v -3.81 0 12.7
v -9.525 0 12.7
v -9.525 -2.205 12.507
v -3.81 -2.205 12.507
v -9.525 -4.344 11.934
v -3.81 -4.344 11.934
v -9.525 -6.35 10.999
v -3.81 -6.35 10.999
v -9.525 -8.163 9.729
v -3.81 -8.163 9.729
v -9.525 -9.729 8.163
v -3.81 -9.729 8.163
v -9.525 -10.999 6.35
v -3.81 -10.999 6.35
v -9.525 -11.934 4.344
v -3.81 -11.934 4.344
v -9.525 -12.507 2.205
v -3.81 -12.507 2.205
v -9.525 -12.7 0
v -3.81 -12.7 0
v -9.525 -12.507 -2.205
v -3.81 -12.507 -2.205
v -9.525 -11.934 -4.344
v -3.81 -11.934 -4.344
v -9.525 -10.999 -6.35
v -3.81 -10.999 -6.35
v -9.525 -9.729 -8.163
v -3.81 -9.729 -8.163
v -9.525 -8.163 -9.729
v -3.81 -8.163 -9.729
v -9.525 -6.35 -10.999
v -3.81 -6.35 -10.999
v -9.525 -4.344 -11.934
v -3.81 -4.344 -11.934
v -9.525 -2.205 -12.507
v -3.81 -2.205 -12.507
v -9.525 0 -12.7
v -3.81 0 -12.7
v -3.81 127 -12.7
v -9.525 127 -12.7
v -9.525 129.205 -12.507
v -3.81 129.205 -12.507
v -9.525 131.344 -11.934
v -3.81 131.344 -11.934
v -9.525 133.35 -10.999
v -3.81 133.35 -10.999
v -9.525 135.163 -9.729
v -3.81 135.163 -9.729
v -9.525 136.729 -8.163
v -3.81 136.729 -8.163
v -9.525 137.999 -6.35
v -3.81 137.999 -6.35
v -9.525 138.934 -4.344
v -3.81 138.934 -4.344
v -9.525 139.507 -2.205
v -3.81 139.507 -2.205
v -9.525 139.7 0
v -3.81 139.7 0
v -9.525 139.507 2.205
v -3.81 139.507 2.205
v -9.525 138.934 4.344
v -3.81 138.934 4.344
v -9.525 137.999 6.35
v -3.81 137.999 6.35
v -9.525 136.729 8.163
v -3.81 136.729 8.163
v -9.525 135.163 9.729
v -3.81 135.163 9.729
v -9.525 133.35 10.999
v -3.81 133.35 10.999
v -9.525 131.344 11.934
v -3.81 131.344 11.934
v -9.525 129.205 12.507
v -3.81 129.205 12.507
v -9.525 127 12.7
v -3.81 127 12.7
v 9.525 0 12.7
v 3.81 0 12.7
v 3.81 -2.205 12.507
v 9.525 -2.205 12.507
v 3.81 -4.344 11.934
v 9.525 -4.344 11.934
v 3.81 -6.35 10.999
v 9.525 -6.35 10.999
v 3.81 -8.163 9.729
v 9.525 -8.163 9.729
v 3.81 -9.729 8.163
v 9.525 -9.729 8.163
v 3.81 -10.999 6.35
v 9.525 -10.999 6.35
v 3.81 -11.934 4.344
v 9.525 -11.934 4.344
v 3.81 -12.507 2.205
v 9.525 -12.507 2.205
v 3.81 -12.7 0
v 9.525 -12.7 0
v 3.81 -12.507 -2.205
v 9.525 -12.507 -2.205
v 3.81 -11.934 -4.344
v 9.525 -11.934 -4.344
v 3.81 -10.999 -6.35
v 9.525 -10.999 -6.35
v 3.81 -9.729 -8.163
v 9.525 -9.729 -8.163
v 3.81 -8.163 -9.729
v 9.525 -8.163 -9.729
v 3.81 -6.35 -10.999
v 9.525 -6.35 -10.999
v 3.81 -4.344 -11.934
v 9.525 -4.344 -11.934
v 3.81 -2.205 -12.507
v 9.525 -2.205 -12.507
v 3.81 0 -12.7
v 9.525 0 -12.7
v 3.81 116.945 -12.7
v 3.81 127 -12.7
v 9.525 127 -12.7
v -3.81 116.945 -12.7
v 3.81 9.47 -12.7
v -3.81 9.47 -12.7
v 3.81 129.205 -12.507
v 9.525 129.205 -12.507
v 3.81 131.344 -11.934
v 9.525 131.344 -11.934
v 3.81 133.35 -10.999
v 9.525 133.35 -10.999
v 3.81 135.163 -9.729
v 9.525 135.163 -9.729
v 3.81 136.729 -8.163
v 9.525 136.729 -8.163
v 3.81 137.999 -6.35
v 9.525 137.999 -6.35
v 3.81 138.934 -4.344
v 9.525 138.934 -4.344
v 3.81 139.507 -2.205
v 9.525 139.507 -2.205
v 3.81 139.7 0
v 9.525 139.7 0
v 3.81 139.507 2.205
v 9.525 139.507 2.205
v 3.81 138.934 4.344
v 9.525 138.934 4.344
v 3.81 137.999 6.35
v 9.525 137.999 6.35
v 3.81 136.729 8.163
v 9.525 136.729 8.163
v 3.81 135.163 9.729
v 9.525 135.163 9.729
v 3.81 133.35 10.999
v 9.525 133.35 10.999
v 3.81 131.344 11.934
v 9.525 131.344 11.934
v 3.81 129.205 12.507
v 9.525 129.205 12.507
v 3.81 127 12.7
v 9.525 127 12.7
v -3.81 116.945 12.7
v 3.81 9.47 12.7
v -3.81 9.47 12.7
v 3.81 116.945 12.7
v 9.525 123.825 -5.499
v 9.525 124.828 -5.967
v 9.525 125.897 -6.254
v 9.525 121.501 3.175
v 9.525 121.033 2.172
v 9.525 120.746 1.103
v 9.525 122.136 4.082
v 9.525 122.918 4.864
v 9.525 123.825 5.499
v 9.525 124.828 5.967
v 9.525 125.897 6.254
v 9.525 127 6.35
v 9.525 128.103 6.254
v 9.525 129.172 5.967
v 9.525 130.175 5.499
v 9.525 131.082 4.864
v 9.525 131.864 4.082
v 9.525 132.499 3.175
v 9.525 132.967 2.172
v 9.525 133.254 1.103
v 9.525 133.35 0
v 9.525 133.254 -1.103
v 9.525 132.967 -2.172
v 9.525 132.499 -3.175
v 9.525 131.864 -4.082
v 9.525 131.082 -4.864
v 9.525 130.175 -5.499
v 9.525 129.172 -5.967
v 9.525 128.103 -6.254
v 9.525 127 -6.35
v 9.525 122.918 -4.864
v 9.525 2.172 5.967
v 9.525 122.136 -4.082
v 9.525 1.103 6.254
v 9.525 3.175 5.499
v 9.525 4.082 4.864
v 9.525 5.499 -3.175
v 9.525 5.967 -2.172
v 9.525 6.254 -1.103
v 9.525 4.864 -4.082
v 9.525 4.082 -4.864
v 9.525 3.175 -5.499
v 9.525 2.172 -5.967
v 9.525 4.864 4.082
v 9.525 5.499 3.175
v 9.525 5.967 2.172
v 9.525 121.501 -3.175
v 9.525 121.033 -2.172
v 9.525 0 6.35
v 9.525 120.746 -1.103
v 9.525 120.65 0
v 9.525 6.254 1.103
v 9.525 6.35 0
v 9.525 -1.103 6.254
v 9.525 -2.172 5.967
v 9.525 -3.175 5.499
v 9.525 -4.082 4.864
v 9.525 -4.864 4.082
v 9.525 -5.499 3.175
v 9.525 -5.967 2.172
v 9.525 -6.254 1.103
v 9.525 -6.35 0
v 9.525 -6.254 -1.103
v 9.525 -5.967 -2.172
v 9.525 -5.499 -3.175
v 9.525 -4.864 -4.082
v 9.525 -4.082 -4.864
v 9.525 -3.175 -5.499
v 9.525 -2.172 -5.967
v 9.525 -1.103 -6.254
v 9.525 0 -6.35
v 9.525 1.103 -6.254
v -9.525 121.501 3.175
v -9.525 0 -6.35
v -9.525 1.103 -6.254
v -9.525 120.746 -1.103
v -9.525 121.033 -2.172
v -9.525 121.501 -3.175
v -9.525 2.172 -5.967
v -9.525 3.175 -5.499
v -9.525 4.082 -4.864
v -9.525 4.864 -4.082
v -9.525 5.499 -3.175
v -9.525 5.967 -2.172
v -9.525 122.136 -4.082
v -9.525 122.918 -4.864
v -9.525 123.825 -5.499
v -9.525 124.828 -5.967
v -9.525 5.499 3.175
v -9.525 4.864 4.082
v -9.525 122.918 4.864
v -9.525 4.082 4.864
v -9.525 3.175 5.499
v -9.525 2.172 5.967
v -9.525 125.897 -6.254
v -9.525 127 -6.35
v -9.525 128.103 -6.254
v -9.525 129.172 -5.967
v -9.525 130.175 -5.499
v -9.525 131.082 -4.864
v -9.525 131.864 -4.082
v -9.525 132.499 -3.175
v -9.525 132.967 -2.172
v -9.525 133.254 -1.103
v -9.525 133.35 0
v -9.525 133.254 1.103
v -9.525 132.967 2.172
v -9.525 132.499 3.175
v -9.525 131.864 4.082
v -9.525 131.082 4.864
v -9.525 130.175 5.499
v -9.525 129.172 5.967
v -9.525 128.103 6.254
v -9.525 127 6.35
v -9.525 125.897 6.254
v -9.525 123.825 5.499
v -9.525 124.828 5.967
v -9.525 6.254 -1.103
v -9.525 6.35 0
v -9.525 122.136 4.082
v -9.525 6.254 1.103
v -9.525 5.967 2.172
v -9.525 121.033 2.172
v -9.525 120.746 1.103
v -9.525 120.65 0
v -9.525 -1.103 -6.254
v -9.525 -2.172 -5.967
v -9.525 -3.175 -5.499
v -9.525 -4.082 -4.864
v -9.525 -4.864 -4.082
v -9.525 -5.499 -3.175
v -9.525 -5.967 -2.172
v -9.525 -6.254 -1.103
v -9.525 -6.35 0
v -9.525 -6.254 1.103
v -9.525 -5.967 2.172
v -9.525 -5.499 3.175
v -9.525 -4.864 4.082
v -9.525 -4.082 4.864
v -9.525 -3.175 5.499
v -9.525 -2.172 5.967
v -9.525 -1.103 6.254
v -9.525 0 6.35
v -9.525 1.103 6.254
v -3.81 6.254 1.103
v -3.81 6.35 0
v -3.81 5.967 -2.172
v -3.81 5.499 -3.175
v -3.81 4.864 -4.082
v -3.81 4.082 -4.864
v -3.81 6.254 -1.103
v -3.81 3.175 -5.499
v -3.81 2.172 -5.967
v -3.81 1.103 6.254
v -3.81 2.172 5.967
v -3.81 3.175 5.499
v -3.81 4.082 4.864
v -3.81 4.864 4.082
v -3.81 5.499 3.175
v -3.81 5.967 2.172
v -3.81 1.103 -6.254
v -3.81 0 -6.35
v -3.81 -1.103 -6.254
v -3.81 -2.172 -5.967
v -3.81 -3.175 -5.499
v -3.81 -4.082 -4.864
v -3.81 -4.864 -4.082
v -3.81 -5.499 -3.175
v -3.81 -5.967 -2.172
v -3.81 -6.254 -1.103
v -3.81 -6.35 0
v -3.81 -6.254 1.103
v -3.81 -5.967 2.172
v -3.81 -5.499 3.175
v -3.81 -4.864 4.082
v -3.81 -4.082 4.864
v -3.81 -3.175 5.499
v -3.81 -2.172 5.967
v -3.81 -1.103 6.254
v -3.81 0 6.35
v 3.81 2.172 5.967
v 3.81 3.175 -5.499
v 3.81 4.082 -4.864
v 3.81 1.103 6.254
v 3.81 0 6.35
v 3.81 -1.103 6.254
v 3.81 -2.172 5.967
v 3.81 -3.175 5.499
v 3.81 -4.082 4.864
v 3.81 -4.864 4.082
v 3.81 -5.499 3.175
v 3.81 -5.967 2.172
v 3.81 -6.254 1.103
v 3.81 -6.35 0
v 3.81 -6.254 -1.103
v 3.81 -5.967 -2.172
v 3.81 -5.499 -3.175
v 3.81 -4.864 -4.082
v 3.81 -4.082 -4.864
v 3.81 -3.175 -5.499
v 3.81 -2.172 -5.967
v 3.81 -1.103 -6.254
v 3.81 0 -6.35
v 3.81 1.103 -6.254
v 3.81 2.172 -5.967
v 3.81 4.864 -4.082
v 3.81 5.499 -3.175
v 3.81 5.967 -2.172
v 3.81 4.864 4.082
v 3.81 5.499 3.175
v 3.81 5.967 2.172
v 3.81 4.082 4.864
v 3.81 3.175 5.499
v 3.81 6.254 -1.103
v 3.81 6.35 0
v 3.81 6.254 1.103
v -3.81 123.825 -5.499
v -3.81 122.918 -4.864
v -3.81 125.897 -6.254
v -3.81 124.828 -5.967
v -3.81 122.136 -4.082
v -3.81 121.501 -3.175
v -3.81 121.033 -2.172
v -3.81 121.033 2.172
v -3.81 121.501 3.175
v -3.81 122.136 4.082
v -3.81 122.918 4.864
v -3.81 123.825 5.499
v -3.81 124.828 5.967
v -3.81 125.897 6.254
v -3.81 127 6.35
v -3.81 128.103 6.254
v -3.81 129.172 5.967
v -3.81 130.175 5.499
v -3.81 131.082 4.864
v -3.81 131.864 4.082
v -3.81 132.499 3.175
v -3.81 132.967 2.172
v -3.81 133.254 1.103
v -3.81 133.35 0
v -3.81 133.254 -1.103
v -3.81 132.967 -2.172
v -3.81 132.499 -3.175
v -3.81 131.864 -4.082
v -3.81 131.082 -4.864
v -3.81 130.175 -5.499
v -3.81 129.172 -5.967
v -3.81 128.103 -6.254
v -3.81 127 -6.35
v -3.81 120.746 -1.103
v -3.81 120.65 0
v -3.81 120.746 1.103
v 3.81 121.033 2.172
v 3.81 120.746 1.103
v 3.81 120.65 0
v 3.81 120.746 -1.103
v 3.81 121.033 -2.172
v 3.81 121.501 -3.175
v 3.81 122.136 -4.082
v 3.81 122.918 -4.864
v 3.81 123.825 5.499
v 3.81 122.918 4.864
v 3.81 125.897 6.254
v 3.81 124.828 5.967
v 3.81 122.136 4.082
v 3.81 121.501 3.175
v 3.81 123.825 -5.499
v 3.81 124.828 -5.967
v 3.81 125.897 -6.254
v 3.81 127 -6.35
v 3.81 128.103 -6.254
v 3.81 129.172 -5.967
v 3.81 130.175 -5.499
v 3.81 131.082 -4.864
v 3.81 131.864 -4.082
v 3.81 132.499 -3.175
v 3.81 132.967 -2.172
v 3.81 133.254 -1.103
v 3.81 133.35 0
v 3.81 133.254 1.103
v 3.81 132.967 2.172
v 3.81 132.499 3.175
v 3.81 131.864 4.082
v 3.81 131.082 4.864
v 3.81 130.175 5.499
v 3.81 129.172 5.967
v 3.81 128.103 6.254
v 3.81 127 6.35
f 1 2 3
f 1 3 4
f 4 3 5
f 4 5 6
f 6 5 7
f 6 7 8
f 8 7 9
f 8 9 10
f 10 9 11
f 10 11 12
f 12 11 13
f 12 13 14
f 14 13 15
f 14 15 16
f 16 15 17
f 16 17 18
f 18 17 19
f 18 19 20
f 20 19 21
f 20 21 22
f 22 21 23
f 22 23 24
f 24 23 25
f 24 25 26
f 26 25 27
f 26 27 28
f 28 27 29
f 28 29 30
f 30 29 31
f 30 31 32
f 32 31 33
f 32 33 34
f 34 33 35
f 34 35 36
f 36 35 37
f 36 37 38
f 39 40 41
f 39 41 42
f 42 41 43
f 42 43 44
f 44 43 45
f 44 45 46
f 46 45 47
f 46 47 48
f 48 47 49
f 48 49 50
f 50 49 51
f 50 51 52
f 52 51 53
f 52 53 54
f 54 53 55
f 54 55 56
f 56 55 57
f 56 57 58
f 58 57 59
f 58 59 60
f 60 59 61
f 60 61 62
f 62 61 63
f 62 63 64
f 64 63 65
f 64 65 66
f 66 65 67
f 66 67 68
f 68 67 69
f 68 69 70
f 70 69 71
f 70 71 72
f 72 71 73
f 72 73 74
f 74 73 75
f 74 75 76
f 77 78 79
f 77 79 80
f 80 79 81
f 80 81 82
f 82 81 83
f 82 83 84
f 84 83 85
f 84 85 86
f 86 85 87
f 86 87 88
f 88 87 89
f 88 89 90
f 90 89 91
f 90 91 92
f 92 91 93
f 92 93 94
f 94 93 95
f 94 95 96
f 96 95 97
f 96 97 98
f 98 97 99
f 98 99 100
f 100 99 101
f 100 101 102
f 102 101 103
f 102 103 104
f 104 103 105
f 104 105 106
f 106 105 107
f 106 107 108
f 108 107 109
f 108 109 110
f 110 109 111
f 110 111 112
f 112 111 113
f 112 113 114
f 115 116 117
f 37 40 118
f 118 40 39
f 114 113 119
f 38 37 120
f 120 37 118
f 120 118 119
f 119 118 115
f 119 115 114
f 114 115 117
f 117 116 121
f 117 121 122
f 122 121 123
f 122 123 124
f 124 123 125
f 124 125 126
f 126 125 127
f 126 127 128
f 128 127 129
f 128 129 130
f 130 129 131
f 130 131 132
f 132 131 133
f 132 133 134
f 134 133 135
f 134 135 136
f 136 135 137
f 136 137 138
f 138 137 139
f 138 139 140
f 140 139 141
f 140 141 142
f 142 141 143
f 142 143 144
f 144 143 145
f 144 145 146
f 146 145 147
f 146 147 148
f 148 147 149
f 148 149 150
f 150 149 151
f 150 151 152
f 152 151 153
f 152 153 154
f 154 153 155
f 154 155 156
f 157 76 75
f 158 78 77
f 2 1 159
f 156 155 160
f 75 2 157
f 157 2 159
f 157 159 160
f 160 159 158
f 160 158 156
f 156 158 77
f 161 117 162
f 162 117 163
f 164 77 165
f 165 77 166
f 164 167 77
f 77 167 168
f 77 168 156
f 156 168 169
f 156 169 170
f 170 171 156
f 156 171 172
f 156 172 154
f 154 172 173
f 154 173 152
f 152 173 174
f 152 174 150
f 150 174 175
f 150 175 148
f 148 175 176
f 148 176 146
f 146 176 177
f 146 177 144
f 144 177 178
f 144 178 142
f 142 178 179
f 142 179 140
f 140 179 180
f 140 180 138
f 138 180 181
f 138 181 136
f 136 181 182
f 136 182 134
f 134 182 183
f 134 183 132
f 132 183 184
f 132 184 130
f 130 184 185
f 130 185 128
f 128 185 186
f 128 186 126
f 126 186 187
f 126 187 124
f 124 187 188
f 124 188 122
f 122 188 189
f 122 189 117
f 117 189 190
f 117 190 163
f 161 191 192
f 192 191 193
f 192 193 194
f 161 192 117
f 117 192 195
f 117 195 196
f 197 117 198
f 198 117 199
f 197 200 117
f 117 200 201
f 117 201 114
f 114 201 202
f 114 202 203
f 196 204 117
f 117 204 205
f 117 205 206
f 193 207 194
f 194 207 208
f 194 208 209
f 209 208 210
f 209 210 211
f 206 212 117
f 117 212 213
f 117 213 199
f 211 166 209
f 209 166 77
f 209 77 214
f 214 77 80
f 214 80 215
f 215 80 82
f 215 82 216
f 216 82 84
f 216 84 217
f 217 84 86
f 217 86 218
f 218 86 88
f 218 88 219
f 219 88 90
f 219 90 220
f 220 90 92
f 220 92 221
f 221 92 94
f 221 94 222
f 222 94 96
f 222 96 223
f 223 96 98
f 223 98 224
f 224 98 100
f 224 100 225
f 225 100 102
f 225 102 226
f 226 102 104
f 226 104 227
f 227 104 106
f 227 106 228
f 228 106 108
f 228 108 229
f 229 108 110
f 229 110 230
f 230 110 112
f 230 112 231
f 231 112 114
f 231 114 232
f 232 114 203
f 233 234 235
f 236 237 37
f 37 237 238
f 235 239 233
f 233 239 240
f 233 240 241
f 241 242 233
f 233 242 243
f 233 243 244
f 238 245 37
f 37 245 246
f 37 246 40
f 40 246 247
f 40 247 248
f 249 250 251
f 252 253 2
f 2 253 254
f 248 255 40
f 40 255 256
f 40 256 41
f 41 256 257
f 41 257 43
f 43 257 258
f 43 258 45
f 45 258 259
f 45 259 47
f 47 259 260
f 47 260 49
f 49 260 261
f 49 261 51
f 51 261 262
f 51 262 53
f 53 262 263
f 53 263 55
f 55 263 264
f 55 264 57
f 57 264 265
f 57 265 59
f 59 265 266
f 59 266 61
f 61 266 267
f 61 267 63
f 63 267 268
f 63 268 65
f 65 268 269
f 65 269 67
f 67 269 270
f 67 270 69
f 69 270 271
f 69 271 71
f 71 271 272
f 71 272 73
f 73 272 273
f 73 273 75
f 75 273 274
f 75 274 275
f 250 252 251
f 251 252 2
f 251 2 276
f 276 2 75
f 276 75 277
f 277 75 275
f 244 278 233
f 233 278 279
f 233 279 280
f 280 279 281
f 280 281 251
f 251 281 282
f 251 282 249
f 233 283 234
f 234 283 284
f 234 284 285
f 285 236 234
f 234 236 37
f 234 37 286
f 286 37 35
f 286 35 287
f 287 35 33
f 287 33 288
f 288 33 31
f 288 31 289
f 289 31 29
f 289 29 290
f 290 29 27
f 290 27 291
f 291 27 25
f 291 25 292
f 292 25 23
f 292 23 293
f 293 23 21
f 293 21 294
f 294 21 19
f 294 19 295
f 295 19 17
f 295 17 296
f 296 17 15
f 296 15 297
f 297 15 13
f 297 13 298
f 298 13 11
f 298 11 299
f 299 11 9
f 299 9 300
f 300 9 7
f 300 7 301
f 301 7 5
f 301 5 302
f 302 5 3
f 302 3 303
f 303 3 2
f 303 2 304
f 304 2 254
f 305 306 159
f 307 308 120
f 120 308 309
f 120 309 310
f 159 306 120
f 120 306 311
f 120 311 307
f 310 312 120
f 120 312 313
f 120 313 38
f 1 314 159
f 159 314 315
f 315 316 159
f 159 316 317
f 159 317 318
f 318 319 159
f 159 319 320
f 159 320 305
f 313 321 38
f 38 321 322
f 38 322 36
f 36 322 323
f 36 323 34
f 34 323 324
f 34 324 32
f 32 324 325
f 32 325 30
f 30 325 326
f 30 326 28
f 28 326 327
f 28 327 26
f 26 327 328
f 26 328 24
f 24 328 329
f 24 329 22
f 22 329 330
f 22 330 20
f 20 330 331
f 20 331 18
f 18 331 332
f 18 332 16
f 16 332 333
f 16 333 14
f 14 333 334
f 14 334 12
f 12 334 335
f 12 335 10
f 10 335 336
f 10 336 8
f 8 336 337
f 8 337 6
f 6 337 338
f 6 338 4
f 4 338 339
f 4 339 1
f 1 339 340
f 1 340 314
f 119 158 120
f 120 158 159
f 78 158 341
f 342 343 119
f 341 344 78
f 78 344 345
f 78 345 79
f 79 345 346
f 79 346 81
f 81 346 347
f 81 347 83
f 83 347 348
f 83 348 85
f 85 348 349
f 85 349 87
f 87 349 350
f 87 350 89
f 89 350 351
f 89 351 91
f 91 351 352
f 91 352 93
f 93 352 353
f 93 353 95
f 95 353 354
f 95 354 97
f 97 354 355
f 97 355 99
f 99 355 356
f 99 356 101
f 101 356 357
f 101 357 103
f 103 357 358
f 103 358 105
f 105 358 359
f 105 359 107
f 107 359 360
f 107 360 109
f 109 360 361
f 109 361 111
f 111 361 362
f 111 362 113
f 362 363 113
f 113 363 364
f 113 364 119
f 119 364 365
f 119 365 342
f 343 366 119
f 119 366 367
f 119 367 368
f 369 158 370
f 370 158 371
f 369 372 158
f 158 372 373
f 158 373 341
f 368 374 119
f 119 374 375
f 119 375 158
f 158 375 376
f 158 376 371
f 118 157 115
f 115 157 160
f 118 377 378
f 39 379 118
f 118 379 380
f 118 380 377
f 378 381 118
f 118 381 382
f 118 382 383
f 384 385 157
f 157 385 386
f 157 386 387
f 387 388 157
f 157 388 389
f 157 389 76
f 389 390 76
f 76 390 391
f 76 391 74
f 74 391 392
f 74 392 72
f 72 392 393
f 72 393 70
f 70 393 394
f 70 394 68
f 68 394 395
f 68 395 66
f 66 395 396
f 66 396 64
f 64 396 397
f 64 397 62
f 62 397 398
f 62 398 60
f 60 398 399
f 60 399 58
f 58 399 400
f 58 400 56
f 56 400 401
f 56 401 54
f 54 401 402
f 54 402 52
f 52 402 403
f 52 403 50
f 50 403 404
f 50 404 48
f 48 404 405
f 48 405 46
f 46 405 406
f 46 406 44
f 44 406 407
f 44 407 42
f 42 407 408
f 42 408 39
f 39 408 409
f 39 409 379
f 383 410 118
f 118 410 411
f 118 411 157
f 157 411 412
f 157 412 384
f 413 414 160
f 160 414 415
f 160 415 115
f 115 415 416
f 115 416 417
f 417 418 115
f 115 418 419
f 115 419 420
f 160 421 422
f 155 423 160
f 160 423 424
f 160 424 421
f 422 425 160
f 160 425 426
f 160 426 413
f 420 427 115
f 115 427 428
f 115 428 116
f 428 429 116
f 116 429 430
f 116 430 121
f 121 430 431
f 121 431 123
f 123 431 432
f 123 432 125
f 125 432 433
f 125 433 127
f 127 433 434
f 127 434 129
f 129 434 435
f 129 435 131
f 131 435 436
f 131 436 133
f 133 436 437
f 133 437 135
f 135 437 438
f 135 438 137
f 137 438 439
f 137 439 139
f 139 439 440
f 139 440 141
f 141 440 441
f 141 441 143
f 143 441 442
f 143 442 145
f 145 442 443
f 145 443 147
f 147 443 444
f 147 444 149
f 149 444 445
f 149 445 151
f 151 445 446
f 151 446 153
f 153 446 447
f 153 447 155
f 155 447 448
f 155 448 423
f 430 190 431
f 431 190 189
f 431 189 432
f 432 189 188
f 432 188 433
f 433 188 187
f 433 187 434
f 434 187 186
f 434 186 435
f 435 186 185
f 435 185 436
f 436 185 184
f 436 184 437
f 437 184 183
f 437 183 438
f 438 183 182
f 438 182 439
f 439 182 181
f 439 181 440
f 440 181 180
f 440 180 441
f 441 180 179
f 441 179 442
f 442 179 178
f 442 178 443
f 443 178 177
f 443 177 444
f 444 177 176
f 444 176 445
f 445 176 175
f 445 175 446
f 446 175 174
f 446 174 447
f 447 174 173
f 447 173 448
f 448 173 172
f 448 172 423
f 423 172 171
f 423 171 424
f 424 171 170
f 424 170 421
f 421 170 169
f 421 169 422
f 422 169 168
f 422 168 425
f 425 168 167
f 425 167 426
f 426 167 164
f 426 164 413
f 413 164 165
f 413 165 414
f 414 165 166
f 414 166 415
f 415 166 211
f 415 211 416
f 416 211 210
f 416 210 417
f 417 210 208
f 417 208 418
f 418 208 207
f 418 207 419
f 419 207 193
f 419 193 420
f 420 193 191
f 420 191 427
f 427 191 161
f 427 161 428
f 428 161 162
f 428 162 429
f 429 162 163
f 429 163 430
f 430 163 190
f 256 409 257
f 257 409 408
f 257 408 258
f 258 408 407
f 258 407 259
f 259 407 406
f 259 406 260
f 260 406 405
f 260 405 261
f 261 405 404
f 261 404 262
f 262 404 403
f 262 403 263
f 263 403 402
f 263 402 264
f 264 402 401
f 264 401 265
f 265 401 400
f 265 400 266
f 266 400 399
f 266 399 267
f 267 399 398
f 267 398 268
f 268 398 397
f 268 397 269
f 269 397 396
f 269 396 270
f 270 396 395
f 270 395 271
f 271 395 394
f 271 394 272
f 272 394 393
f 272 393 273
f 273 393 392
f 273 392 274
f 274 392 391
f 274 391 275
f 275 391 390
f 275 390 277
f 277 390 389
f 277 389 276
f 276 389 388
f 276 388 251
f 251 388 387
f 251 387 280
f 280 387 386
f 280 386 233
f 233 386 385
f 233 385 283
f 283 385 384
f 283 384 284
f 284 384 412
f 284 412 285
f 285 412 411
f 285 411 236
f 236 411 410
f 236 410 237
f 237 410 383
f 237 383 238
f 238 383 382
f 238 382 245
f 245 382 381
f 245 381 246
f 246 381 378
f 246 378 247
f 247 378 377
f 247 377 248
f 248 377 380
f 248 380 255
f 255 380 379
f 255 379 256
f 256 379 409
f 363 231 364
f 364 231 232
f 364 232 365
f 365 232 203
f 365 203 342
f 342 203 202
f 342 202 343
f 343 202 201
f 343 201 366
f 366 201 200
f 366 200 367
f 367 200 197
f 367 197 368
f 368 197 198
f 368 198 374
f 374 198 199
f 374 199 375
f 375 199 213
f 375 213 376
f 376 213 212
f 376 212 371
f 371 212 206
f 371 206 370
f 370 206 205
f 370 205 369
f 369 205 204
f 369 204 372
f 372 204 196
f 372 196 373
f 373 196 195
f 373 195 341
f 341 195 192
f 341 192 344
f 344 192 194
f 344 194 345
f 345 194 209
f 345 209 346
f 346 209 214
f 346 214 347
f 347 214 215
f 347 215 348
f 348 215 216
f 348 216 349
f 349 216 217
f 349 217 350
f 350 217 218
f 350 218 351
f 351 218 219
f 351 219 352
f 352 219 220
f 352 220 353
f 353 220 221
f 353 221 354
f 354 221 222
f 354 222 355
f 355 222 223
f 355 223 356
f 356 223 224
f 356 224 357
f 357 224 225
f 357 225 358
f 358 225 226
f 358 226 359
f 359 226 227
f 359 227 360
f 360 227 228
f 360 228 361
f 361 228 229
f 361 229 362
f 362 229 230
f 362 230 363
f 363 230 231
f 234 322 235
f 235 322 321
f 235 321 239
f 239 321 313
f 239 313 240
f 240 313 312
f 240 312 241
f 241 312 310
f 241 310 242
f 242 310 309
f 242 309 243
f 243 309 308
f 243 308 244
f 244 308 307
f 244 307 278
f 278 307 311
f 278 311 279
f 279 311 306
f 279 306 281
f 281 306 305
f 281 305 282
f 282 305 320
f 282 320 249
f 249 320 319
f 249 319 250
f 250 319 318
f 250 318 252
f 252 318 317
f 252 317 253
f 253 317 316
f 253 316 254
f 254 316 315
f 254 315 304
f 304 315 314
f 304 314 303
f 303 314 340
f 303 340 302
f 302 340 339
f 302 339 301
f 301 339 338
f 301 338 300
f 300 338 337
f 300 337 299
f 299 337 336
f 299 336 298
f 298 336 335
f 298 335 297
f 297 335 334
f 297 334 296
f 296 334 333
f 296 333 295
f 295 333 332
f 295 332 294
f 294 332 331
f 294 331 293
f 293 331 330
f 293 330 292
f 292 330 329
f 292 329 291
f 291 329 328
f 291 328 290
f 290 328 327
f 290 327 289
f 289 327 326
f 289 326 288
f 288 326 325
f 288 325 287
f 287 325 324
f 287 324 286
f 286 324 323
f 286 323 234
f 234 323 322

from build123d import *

# Parameters (mm, degrees)
BOSS_EXTRUDE1_DEPTH     = 9.525
CUT_EXTRUDE4_DEPTH      = 143.309436177
CUT_EXTRUDE4_DEPTH_BACK = 143.309436177
SKETCH3_W               = 7.62
SKETCH3_H               = 30.142095215
CUT_EXTRUDE6_DEPTH      = 142.563704741
CUT_EXTRUDE6_DEPTH_BACK = 142.563704741
SKETCH5_R               = 6.35


with BuildPart() as part:
    # Sketch1 → Boss-Extrude1 (new, symmetric)
    with BuildSketch(Plane.YZ):
        with BuildLine():
            Line((0, 12.7), (127, 12.7))
            ThreePointArc((127, 12.7), (139.7, 0), (127, -12.7))
            Line((127, -12.7), (0, -12.7))
            ThreePointArc((0, -12.7), (-12.7, 0), (0, 12.7))
        make_face()
    extrude(amount=BOSS_EXTRUDE1_DEPTH, both=True)

    # Sketch3 → Cut-Extrude4 (cut, two sides: drawn at the far end of the back side and taken through both)
    with BuildSketch(Plane.XY.offset(12.7).offset(-CUT_EXTRUDE4_DEPTH_BACK)):
        with Locations((0, 132.016308081)):
            Rectangle(SKETCH3_W, SKETCH3_H)
        with Locations((0, -5.601173979)):
            Rectangle(SKETCH3_W, SKETCH3_H)
    extrude(amount=CUT_EXTRUDE4_DEPTH + CUT_EXTRUDE4_DEPTH_BACK, mode=Mode.SUBTRACT)

    # Sketch5 → Cut-Extrude6 (cut, two sides: drawn at the far end of the back side and taken through both)
    with BuildSketch(Plane.YZ.offset(9.525).offset(-CUT_EXTRUDE6_DEPTH_BACK)):
        with Locations(Location((0, 0, 0), (0, 0, 270))):
            Circle(SKETCH5_R)
        with Locations(Location((127, 0, 0), (0, 0, 270))):
            Circle(SKETCH5_R)
    extrude(amount=CUT_EXTRUDE6_DEPTH + CUT_EXTRUDE6_DEPTH_BACK, mode=Mode.SUBTRACT)


solid = part.part
